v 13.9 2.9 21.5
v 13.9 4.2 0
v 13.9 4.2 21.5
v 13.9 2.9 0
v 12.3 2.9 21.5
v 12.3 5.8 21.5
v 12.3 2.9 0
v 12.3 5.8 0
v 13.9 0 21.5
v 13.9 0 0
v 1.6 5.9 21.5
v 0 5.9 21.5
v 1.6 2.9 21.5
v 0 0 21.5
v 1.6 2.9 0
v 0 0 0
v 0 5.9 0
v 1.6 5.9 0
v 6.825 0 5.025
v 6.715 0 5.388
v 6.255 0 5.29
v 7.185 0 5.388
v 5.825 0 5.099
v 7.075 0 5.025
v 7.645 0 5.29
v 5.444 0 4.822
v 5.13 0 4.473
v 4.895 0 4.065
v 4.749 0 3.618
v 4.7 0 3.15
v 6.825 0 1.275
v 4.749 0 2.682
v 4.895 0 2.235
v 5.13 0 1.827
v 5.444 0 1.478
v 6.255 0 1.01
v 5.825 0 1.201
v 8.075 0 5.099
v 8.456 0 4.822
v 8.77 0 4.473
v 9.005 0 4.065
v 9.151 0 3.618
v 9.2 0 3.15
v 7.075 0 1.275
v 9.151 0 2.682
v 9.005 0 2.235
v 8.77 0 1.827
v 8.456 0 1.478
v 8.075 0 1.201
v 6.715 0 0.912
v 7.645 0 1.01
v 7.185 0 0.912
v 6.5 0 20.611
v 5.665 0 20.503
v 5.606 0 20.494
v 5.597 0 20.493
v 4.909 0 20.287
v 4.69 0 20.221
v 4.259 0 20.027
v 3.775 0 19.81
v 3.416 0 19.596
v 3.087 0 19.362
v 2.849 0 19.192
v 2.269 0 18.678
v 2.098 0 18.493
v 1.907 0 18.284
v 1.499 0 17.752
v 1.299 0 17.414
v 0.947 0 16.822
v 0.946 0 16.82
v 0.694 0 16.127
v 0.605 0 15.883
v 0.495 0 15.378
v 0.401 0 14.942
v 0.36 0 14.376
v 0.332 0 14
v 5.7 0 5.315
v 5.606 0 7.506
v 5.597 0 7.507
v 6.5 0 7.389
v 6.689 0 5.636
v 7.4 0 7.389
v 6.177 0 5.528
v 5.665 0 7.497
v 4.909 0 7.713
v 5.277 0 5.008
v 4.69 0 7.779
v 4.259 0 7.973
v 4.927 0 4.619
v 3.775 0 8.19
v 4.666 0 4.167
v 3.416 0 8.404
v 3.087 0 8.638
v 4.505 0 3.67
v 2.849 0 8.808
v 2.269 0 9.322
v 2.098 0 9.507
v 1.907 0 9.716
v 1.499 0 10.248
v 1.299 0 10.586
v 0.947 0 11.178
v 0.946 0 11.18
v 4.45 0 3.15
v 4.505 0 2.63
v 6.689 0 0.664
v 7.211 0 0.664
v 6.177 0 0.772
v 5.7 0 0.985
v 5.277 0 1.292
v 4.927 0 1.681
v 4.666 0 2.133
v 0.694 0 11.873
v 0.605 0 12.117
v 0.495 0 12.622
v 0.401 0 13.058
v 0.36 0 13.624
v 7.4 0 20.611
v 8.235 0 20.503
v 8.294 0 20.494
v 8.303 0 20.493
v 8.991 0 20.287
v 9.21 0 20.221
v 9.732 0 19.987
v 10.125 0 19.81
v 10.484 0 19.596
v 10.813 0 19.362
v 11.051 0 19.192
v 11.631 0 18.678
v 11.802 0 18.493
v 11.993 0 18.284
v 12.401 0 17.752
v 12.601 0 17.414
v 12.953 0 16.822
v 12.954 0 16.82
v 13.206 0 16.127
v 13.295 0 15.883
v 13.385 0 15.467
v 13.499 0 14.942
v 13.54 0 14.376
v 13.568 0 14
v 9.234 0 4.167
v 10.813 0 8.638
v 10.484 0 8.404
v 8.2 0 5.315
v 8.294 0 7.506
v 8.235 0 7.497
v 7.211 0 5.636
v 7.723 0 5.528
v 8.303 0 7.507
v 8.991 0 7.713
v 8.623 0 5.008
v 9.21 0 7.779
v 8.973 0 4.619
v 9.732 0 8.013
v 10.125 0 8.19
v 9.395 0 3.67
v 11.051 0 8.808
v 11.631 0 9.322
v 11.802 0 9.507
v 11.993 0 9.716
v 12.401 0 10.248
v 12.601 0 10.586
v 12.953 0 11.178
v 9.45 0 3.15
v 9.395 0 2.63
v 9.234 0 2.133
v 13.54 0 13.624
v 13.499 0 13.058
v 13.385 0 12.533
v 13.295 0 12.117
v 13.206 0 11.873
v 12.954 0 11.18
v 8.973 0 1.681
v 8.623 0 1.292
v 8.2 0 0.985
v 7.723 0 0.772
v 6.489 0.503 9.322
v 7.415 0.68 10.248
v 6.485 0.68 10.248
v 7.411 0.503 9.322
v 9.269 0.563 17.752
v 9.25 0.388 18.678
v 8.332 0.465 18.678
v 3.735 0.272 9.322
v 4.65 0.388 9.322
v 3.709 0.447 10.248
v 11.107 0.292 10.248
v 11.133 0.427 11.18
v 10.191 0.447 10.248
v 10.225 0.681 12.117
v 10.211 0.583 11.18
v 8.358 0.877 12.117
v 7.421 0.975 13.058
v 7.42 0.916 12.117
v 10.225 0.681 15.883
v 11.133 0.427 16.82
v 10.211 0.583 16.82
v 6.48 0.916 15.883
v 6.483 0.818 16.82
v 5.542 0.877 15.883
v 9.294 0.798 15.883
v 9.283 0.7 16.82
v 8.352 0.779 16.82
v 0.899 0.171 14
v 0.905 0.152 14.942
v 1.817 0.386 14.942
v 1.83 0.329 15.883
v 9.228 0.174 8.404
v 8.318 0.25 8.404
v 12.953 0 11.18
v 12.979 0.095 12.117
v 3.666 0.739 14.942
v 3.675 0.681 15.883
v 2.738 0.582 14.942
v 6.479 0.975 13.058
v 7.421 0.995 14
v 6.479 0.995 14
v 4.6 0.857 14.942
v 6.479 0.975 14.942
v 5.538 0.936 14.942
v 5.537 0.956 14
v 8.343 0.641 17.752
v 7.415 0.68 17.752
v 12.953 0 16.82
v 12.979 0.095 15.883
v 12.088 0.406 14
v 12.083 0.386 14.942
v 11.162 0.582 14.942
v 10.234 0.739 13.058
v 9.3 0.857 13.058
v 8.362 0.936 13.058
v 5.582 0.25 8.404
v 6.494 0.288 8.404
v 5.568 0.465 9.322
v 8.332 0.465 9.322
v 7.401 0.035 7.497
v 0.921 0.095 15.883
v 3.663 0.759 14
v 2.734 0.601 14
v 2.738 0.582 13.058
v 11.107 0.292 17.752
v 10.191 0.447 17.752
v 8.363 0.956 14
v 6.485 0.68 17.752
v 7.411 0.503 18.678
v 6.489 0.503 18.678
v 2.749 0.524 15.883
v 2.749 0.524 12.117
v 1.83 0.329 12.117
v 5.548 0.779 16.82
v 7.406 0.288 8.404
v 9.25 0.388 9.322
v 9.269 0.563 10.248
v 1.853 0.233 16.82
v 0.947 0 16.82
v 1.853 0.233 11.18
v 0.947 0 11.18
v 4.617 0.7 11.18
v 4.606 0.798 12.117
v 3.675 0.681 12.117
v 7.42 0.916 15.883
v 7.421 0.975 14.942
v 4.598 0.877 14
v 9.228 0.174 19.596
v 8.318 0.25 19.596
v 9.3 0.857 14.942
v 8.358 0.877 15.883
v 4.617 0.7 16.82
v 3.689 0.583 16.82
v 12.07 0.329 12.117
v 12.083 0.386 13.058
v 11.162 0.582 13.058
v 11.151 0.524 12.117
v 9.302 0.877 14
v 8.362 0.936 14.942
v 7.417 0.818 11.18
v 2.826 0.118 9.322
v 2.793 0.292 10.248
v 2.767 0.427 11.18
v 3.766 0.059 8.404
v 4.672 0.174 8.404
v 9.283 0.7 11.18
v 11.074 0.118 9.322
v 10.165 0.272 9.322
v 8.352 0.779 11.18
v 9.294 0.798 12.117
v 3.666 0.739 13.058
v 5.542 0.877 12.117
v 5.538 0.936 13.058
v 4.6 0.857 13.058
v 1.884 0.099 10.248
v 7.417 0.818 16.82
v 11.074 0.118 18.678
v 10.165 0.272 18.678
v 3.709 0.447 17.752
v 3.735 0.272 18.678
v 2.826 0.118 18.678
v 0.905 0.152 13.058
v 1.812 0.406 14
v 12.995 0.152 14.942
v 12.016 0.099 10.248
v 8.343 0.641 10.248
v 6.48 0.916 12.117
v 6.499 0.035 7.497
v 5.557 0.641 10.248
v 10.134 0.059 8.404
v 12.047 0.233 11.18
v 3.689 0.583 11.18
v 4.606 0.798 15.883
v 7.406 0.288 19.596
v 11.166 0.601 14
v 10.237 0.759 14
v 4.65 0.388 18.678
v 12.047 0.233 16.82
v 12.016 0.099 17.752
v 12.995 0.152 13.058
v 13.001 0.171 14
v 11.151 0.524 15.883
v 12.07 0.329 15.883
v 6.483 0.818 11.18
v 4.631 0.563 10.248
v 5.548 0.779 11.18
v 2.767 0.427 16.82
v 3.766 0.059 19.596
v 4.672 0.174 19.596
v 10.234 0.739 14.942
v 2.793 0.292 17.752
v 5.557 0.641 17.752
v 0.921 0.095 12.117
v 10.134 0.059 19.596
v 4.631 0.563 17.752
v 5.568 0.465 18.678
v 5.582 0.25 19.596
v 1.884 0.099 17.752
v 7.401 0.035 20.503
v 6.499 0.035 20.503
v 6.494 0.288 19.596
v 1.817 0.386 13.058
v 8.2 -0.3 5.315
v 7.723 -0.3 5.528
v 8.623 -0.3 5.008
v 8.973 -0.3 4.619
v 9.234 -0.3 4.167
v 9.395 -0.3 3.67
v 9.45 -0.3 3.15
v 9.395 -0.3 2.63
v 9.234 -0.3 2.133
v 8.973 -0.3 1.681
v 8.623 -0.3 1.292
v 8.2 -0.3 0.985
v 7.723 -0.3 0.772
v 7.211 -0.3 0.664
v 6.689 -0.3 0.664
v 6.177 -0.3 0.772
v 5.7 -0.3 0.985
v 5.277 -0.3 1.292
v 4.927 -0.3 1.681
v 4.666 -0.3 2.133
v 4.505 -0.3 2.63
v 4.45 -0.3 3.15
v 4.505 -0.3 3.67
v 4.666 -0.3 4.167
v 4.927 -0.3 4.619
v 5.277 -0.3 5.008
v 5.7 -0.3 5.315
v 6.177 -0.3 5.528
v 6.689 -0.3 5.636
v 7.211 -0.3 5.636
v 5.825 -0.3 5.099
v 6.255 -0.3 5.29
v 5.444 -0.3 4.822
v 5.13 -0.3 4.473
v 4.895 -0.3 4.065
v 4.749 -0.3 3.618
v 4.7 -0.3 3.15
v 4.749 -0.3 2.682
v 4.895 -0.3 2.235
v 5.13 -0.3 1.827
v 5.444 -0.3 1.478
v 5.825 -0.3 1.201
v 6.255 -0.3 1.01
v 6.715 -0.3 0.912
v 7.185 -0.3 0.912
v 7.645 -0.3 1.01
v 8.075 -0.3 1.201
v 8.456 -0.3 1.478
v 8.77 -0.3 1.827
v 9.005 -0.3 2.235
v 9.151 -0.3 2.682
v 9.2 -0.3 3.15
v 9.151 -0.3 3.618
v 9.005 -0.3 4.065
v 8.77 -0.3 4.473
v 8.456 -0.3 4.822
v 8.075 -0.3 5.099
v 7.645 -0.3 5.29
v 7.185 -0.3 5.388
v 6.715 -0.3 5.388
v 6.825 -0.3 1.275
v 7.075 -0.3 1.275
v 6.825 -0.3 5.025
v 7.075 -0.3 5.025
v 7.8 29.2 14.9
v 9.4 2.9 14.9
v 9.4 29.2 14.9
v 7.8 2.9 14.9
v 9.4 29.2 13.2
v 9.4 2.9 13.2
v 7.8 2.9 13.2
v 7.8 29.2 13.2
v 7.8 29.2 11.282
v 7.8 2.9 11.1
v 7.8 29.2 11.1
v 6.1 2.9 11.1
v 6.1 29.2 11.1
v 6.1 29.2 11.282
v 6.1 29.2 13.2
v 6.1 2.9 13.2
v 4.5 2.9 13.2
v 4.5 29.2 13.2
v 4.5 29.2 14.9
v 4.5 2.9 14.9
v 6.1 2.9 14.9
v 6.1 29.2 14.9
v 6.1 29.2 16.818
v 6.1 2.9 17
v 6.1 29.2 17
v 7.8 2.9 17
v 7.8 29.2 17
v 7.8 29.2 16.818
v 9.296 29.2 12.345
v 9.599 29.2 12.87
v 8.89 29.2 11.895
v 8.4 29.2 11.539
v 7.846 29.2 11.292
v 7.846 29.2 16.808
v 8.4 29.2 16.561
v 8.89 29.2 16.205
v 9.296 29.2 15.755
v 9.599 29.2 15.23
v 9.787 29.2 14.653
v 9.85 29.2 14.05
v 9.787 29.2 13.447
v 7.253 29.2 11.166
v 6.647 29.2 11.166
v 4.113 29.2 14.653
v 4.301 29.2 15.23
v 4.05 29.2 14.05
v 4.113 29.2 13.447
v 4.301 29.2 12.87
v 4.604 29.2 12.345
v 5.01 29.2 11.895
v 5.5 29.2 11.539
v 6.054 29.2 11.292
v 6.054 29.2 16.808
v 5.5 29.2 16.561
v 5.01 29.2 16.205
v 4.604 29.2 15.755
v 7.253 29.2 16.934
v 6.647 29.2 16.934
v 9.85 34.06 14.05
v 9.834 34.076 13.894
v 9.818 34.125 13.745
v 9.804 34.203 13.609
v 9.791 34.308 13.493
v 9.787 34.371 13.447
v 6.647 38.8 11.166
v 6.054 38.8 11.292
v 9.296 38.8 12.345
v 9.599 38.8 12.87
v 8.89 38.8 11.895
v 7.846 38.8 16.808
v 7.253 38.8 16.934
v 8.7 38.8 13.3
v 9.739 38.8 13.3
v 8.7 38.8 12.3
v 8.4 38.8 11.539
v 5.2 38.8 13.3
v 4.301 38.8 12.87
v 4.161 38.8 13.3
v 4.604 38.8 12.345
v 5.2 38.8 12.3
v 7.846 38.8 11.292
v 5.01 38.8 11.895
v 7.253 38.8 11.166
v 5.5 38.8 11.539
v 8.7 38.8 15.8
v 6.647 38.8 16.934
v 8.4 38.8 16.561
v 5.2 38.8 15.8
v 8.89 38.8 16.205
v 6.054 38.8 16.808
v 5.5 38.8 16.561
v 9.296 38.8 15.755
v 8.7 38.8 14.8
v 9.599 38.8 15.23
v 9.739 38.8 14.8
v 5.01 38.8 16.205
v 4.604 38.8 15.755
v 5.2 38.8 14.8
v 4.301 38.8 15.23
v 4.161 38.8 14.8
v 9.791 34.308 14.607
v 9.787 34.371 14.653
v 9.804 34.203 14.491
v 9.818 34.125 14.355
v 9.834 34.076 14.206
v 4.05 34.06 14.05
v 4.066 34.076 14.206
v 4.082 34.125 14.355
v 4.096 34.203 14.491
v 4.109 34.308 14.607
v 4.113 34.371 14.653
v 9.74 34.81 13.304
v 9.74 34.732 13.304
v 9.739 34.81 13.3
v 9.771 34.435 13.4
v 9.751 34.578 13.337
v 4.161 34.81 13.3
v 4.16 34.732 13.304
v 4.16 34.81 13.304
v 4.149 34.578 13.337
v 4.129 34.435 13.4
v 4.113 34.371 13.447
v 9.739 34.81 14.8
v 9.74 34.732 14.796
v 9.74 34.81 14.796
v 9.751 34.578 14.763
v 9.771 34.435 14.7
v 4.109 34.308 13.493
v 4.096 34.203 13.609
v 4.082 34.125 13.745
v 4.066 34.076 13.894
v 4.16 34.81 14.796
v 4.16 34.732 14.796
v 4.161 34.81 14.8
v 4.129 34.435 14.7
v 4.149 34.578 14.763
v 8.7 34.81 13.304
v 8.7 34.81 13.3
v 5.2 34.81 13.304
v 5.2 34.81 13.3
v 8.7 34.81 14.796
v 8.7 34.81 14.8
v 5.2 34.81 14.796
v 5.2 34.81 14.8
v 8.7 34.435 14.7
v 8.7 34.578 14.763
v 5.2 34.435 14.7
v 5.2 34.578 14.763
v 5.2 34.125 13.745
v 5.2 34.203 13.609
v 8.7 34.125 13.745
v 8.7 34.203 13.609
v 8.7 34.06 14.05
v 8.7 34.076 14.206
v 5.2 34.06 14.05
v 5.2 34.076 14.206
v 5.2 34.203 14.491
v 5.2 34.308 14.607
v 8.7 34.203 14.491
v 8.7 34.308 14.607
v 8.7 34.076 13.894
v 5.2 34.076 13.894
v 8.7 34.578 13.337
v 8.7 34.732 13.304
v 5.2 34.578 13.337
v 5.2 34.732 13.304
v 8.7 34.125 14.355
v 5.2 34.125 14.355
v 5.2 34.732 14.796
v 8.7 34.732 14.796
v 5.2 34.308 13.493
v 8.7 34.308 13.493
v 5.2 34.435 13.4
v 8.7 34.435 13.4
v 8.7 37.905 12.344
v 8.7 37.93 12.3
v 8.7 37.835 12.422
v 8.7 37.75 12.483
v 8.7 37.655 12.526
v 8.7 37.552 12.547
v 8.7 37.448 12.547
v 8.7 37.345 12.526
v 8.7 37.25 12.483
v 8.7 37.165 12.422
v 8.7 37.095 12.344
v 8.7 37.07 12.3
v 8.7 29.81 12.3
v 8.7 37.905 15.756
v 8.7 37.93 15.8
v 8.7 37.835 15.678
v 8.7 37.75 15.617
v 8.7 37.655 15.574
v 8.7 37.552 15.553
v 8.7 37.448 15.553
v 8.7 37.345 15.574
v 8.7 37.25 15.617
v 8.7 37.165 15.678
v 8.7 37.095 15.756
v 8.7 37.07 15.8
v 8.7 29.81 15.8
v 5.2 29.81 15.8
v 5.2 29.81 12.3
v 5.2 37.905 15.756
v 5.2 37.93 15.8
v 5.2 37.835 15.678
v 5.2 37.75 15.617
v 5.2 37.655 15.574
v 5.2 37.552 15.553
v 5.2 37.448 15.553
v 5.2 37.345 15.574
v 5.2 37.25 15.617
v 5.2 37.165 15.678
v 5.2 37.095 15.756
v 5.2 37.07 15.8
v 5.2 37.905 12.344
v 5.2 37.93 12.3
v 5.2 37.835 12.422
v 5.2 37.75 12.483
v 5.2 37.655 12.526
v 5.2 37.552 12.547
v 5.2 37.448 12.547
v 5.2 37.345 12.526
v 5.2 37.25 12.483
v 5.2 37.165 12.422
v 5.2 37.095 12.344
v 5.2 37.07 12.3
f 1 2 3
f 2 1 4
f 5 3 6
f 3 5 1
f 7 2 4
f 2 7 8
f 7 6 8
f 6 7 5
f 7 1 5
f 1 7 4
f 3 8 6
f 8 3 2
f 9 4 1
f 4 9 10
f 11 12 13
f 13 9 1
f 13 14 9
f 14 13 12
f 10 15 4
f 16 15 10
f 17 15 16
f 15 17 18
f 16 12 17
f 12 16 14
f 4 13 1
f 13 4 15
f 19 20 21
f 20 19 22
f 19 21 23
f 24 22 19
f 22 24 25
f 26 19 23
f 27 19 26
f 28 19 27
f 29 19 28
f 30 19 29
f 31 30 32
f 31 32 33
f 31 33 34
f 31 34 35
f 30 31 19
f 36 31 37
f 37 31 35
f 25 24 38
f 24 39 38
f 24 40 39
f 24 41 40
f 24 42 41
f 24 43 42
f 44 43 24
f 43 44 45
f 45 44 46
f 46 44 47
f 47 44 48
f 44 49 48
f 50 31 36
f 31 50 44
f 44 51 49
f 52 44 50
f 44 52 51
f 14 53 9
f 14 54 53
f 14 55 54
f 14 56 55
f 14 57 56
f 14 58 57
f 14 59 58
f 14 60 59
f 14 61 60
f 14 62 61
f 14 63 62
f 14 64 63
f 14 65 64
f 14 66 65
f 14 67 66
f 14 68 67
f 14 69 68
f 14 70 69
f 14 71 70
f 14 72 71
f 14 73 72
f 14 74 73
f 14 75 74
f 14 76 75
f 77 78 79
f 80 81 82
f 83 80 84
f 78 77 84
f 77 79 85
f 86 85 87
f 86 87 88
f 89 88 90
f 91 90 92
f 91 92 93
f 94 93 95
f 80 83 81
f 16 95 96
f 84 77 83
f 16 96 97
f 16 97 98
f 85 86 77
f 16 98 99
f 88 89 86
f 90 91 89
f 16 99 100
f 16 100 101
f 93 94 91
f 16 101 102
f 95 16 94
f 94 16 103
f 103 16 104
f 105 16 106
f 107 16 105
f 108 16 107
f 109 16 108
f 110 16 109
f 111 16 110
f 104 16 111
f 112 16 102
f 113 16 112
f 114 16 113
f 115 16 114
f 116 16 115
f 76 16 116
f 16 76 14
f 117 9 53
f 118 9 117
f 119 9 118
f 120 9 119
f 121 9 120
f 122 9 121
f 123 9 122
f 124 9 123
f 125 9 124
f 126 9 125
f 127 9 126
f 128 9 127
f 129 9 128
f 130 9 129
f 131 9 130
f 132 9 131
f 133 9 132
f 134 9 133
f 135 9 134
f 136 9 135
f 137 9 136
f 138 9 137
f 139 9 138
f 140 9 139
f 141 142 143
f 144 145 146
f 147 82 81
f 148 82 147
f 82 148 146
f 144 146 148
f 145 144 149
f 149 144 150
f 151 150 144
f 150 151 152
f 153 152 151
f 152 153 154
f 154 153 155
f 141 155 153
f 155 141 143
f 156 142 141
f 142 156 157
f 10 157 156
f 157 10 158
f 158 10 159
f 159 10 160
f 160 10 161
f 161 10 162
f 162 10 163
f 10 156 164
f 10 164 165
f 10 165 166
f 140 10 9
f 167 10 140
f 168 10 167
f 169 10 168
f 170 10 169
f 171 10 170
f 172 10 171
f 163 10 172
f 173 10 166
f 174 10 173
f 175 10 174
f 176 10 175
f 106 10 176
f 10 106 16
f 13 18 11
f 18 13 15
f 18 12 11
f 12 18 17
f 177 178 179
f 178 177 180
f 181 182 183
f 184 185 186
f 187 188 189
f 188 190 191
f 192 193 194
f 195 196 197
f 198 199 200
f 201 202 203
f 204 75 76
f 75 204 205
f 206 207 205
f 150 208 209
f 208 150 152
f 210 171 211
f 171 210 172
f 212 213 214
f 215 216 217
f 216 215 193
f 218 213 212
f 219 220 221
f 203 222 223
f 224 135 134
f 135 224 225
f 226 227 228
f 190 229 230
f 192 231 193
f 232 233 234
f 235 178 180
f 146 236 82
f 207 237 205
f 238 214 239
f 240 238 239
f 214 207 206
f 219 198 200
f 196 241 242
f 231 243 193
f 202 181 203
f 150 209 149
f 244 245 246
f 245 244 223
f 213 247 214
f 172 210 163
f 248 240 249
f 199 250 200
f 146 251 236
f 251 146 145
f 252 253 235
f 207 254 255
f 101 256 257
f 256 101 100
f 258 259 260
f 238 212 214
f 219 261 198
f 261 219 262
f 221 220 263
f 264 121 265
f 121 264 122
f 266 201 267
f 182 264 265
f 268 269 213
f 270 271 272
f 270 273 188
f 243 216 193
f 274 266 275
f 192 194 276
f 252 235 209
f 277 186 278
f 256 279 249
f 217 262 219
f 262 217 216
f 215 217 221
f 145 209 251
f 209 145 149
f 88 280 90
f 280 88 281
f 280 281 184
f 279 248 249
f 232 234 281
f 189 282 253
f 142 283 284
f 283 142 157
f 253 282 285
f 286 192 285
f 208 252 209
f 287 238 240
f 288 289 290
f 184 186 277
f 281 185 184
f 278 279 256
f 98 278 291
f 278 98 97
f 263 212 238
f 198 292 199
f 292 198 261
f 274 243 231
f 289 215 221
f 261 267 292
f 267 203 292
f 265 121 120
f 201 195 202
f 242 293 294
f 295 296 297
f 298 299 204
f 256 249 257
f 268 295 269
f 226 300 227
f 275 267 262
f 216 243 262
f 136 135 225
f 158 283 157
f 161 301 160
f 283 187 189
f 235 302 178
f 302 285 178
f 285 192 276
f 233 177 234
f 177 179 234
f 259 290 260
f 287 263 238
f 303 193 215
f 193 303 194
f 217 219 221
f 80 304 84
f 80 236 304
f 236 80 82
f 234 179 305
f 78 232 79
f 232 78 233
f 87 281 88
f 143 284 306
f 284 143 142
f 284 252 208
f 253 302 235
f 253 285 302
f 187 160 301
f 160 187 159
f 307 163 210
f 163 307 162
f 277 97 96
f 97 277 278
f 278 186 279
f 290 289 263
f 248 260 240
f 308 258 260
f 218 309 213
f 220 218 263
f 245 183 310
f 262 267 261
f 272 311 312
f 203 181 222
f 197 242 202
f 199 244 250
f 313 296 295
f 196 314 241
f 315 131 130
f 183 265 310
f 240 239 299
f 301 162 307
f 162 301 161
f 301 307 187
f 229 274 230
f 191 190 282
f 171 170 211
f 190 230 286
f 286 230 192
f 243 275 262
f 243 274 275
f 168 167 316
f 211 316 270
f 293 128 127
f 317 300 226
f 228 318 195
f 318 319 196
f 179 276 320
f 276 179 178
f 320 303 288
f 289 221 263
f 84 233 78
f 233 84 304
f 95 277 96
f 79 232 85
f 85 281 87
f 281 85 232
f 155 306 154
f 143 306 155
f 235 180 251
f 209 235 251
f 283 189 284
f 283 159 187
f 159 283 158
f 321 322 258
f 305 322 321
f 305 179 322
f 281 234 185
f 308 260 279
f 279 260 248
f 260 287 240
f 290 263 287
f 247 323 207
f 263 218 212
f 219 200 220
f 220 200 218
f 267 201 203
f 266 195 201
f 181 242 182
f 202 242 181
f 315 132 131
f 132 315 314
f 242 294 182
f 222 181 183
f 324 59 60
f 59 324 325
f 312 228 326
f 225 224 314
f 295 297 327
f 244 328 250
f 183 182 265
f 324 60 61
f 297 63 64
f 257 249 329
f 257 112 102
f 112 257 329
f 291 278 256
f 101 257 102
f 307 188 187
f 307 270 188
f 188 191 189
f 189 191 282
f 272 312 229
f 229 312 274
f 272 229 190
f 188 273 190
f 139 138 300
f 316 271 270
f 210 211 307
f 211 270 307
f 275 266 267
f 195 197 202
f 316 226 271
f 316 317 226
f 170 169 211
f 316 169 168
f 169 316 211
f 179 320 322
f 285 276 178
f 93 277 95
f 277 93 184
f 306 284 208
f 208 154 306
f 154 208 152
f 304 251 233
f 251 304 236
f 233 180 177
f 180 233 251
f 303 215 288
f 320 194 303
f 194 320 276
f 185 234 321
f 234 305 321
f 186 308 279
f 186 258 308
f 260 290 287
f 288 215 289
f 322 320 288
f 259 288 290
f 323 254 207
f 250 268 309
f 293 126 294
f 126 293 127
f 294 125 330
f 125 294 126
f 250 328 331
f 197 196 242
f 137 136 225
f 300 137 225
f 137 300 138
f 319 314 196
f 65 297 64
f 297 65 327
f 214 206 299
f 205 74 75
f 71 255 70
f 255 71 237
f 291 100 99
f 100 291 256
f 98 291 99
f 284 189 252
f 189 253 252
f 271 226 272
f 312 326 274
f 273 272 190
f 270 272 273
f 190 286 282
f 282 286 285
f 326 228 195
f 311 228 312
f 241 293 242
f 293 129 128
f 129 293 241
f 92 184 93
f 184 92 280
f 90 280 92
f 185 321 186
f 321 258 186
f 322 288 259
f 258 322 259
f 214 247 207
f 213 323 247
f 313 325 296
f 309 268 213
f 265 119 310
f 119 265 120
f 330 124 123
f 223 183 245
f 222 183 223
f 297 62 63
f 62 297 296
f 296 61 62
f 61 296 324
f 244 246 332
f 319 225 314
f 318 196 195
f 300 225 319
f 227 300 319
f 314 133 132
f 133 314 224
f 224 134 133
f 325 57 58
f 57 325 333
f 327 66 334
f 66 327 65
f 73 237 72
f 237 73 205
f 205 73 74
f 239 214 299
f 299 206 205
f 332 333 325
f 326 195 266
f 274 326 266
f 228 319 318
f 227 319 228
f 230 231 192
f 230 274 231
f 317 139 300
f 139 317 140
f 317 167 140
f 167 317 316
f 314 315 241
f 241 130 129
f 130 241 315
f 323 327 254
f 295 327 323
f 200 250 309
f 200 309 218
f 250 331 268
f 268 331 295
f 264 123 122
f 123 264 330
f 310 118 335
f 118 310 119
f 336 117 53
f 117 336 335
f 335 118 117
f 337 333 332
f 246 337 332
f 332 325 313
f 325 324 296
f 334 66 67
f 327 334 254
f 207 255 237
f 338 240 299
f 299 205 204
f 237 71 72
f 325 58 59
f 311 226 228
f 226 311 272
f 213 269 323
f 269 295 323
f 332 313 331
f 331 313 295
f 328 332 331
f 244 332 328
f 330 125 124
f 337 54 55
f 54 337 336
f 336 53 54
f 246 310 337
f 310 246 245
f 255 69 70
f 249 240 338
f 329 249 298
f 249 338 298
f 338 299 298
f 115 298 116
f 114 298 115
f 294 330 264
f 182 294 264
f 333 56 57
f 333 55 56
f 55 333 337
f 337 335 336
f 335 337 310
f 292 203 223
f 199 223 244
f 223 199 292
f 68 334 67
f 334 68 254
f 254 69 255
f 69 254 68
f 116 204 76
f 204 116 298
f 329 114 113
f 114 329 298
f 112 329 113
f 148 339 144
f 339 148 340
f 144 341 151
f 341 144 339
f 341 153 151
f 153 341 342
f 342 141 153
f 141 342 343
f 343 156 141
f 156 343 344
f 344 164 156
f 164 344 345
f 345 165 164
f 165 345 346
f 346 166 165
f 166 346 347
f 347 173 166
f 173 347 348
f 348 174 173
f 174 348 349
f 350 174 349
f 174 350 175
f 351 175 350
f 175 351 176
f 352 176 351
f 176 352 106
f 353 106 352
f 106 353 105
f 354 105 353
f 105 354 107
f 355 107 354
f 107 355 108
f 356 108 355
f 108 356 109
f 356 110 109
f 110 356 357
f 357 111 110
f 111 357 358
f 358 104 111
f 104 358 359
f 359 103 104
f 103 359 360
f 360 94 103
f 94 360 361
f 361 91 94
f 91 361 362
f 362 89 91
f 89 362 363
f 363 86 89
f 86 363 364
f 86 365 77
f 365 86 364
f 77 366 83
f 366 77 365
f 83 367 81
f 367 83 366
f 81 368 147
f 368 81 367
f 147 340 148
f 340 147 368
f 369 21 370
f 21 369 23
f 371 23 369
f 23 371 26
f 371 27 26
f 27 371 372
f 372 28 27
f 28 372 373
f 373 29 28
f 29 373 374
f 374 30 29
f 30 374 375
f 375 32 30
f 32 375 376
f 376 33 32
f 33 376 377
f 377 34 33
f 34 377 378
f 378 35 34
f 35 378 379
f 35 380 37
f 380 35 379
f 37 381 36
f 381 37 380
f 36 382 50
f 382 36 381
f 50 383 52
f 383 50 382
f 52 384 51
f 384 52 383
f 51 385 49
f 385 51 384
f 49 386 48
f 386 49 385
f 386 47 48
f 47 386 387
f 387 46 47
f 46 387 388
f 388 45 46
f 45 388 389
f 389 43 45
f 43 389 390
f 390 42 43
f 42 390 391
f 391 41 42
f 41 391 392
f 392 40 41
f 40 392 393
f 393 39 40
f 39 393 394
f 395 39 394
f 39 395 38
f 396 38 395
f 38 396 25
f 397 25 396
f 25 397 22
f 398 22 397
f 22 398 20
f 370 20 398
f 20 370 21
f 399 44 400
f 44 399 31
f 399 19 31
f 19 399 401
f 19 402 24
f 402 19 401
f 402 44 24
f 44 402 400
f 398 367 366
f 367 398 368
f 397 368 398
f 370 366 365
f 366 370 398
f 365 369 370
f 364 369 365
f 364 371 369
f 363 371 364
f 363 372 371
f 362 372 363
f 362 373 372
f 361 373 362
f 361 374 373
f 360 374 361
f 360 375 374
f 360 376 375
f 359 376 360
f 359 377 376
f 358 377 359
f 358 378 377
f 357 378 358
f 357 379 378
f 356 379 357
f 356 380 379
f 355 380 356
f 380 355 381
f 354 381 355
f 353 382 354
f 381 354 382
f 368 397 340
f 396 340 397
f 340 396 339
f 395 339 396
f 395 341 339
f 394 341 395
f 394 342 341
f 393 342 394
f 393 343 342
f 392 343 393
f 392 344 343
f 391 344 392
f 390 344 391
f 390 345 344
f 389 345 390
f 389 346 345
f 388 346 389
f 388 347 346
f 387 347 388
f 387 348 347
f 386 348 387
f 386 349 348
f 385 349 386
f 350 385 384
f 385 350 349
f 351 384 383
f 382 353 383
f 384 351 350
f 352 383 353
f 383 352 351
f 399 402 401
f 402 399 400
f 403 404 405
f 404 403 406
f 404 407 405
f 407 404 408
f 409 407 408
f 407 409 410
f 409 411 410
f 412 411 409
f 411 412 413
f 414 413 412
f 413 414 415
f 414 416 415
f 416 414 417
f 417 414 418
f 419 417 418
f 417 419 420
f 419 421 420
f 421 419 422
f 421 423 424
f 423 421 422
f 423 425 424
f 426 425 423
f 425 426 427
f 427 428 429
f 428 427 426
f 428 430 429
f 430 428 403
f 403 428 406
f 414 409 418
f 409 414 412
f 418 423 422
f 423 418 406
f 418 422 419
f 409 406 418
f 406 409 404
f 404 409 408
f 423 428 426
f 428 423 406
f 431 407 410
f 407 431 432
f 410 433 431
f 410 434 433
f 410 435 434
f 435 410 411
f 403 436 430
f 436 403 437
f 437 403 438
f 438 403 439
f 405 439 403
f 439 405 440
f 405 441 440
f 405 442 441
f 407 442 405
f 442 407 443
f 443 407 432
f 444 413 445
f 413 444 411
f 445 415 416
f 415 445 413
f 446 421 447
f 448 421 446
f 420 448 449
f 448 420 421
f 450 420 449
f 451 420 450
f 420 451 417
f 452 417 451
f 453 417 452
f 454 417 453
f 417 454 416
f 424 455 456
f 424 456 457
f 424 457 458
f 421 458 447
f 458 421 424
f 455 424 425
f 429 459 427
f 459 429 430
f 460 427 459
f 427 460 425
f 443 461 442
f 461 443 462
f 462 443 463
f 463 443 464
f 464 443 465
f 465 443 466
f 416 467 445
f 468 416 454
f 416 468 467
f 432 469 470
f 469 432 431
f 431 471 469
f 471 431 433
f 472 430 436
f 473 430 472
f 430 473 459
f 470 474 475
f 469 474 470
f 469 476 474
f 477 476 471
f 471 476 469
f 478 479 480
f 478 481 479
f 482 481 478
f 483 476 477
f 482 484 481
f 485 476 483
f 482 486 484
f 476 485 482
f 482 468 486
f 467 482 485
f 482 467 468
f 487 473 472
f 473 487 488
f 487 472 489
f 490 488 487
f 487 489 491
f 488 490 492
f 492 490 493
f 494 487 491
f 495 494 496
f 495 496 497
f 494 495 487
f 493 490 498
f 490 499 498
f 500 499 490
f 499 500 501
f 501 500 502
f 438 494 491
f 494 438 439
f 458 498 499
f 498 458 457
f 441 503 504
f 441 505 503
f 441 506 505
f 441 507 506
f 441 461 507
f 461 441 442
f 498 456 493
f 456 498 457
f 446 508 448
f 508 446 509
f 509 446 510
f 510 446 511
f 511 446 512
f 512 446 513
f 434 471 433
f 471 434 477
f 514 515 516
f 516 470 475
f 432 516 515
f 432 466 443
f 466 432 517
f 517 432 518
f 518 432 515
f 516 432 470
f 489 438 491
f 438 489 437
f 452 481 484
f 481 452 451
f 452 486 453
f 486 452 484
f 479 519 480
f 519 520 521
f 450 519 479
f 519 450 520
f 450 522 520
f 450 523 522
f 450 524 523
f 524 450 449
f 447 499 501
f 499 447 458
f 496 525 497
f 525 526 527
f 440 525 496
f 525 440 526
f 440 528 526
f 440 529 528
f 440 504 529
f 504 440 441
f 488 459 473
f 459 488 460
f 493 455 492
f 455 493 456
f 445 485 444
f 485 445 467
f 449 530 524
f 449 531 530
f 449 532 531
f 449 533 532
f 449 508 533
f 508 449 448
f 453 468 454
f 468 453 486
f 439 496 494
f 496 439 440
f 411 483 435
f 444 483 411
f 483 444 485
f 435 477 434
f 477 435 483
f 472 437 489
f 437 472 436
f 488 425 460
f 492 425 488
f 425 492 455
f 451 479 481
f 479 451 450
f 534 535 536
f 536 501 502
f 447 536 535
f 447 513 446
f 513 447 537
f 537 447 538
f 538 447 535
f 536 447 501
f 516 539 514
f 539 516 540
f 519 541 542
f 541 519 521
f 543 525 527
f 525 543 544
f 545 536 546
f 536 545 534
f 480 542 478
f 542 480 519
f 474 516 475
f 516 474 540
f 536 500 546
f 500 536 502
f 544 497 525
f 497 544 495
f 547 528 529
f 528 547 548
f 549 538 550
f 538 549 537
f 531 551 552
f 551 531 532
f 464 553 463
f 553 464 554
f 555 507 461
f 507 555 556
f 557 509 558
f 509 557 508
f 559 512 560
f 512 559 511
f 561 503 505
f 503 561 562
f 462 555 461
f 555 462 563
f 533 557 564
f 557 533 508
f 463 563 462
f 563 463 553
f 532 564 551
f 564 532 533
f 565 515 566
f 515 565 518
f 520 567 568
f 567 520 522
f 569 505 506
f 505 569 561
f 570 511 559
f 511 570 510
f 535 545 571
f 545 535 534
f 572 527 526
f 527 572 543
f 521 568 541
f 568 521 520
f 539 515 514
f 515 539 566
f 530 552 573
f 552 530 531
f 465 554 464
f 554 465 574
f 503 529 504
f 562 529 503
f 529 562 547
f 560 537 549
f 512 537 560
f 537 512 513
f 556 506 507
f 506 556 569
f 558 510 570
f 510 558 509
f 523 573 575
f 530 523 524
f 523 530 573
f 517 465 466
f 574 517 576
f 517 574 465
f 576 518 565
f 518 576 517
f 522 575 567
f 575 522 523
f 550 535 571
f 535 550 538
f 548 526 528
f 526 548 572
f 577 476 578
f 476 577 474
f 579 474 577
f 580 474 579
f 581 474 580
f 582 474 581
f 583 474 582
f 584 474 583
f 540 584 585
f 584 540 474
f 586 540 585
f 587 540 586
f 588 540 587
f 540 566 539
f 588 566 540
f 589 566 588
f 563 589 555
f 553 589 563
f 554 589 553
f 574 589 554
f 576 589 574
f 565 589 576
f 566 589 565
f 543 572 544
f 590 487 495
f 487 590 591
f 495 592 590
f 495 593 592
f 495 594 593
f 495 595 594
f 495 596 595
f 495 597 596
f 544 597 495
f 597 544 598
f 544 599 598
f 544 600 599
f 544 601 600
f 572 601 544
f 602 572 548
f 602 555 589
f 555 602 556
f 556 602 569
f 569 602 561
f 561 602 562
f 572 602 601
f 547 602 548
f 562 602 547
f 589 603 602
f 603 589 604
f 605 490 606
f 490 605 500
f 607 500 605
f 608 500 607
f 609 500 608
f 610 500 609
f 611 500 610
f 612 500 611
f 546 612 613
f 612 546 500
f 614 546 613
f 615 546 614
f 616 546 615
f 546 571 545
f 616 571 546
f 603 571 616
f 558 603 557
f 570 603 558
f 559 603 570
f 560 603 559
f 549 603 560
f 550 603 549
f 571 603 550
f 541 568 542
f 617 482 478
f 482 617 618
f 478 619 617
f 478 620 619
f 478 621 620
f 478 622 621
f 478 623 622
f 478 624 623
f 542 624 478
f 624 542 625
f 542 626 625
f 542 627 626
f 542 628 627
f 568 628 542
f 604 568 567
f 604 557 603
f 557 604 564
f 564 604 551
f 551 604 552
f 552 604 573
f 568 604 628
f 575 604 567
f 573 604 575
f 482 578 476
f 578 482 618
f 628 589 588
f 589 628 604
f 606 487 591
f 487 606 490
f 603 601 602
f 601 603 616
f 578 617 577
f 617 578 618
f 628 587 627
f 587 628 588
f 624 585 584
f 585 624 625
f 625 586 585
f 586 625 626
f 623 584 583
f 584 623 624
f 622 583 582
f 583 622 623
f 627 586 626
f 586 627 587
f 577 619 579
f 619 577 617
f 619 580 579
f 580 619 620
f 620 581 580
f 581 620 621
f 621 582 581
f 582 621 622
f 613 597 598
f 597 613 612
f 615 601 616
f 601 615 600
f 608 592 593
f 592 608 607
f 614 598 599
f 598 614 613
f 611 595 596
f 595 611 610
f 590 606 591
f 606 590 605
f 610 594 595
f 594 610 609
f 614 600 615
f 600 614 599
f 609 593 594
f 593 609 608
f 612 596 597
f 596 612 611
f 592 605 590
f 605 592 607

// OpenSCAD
// OpenSCAD definition for an Acorn Risc PC Power Button
//
// This was measured from a real Risc PC power button to 0.1mm accuracy.
//
// by David Thomas, 28-Jan-25
//

epsilon = 0.01; // aka bodge factor

width = 13.9;
height = 21.5;
depth = 2.9;

sidewidth = 1.6;
leftdepth = 3;
rightdepth = 2.9;

reinforced = false; // makes the stem a solid tube

stemwidth = 4.9;
stemheight = 5.9;
stemdepth = 26.3;
stemmiddle = 1.7;

cyldia = 5.8; // 5.9 wide, 5.7 high as measured but using an average here
cyldepth = 9.6;
cyldetail = 30;

cylcutout = 3.5;
cylcutoutdepth = 9.0;

mouthwidth = 6;
mouthheight = 1.5;
mouthdepth = 4;

griprad = 0.5; // radius of grip bars inside mouth

symbol = true; // enables symbol on button front
symboldia = 5;
symboldepth = 0.3;
symbol_y = 3.15; // from bottom
symboldetail = cyldetail;
symbolthickness = 0.25;

push = true; // enables push impression on button front
pushsize = 45; // sphere diameter
pushdepth = 1;
push_y = 14; // from bottom
pushdetail = 150;

top = false; // additional top fill

module powersymbol() {
    linear_extrude(symboldepth)
        union() {
            difference() {
                circle(d = symboldia, $fn = symboldetail);
                circle(d = symboldia - symbolthickness * 2, $fn = symboldetail);
            }
            square([symbolthickness, symboldia * 3 / 4], center = true);
        }
}

module plainfront() {
	union() {
        // front
        button = [width, depth, height];
        cube(size = button);

		lefthand = [sidewidth, leftdepth, height];
		translate([0, depth, 0])
			cube(size = lefthand);

		righthand = [sidewidth, rightdepth, height];
		translate([width - sidewidth, depth, 0])
			difference() {
				cube(size = righthand);

				// using epsilon here to avoid edges colliding
				t = sidewidth;
				translate([0, rightdepth - t, -epsilon])
					linear_extrude(height + epsilon * 2)
						polygon(points=[[t + epsilon, -epsilon],
								[t + epsilon, t + epsilon],
								[-epsilon, t + epsilon]]);
			}
		
		// top fill (additional)
		if (top) {
			top = [width - sidewidth * 2, leftdepth, sidewidth];
			translate([sidewidth, depth, height - sidewidth])
				cube(size = top);
	    }
    }
}

module front() {
    union() {
        difference() {
            plainfront();
            
            // push impression
            if (push) {
                translate([width / 2, -pushsize / 2 + pushdepth, push_y])
                    sphere(d = pushsize, $fn = pushdetail);
            }
        }

		// power symbol
		if (symbol) {
			translate([width / 2, -symboldepth, symbol_y])
				rotate([-90, 0, 0])
                    powersymbol();
		}
	}
}

module cross() {
    if (!reinforced) {
        union() {
            // cross part
            linear_extrude(stemdepth)
                union() {
                    square([stemmiddle, stemheight], center = true);
                    square([stemwidth, stemmiddle], center = true);
                }

            // cylinder part
            translate([0, 0, stemdepth + cyldepth / 2])
                cylinder(h = cyldepth, r = cyldia / 2, center = true, $fn = cyldetail);
        }
    } else {
        translate([0, 0, (stemdepth + cyldepth) / 2])
            cylinder(h = stemdepth + cyldepth, r1 = cyldia / 2, r2 = cyldia / 2, center = true, $fn = cyldetail);
    }
}

module clipcutout() {
    difference() {
        union() {
            // cut out the square section
            translate([0, 0, (cyldepth - cylcutoutdepth) / 2 + epsilon])
                cube([cylcutout, cylcutout, cylcutoutdepth], center = true);

            // cut out the mouth section
            translate([0, 0, (cyldepth - mouthdepth) / 2 + epsilon]) {
                cube([mouthwidth, mouthheight, mouthdepth], center = true);
                
                // round off the mouth section
                translate([0, 0, -mouthdepth / 2])
                    rotate([0, 90, 0])
                        cylinder(h = mouthwidth, r = 0.75, center = true, $fn = cyldetail);
            }
        }
        
        // add grip bars inside the mouth
        
        y = cylcutout / 2 + griprad / 2;
        
        translate([0, y, cylcutoutdepth / 2 - 1])
            rotate([0, 90, 0])
                cylinder(h = cylcutout, r = griprad, center = true, $fn = cyldetail);
        
        translate([0, -y, cylcutoutdepth / 2 - 1])
            rotate([0, 90, 0])
                cylinder(h = cylcutout, r = griprad, center = true, $fn = cyldetail);
    }
}

module stem() {
    difference() {
        cross();
        
        translate([0, 0, stemdepth + cyldepth / 2])
            clipcutout();
    }
}

union() {
    front();
    
    translate([width / 2, depth, 17 - stemheight / 2])
        rotate([-90, 0, 0])
            stem();
}
